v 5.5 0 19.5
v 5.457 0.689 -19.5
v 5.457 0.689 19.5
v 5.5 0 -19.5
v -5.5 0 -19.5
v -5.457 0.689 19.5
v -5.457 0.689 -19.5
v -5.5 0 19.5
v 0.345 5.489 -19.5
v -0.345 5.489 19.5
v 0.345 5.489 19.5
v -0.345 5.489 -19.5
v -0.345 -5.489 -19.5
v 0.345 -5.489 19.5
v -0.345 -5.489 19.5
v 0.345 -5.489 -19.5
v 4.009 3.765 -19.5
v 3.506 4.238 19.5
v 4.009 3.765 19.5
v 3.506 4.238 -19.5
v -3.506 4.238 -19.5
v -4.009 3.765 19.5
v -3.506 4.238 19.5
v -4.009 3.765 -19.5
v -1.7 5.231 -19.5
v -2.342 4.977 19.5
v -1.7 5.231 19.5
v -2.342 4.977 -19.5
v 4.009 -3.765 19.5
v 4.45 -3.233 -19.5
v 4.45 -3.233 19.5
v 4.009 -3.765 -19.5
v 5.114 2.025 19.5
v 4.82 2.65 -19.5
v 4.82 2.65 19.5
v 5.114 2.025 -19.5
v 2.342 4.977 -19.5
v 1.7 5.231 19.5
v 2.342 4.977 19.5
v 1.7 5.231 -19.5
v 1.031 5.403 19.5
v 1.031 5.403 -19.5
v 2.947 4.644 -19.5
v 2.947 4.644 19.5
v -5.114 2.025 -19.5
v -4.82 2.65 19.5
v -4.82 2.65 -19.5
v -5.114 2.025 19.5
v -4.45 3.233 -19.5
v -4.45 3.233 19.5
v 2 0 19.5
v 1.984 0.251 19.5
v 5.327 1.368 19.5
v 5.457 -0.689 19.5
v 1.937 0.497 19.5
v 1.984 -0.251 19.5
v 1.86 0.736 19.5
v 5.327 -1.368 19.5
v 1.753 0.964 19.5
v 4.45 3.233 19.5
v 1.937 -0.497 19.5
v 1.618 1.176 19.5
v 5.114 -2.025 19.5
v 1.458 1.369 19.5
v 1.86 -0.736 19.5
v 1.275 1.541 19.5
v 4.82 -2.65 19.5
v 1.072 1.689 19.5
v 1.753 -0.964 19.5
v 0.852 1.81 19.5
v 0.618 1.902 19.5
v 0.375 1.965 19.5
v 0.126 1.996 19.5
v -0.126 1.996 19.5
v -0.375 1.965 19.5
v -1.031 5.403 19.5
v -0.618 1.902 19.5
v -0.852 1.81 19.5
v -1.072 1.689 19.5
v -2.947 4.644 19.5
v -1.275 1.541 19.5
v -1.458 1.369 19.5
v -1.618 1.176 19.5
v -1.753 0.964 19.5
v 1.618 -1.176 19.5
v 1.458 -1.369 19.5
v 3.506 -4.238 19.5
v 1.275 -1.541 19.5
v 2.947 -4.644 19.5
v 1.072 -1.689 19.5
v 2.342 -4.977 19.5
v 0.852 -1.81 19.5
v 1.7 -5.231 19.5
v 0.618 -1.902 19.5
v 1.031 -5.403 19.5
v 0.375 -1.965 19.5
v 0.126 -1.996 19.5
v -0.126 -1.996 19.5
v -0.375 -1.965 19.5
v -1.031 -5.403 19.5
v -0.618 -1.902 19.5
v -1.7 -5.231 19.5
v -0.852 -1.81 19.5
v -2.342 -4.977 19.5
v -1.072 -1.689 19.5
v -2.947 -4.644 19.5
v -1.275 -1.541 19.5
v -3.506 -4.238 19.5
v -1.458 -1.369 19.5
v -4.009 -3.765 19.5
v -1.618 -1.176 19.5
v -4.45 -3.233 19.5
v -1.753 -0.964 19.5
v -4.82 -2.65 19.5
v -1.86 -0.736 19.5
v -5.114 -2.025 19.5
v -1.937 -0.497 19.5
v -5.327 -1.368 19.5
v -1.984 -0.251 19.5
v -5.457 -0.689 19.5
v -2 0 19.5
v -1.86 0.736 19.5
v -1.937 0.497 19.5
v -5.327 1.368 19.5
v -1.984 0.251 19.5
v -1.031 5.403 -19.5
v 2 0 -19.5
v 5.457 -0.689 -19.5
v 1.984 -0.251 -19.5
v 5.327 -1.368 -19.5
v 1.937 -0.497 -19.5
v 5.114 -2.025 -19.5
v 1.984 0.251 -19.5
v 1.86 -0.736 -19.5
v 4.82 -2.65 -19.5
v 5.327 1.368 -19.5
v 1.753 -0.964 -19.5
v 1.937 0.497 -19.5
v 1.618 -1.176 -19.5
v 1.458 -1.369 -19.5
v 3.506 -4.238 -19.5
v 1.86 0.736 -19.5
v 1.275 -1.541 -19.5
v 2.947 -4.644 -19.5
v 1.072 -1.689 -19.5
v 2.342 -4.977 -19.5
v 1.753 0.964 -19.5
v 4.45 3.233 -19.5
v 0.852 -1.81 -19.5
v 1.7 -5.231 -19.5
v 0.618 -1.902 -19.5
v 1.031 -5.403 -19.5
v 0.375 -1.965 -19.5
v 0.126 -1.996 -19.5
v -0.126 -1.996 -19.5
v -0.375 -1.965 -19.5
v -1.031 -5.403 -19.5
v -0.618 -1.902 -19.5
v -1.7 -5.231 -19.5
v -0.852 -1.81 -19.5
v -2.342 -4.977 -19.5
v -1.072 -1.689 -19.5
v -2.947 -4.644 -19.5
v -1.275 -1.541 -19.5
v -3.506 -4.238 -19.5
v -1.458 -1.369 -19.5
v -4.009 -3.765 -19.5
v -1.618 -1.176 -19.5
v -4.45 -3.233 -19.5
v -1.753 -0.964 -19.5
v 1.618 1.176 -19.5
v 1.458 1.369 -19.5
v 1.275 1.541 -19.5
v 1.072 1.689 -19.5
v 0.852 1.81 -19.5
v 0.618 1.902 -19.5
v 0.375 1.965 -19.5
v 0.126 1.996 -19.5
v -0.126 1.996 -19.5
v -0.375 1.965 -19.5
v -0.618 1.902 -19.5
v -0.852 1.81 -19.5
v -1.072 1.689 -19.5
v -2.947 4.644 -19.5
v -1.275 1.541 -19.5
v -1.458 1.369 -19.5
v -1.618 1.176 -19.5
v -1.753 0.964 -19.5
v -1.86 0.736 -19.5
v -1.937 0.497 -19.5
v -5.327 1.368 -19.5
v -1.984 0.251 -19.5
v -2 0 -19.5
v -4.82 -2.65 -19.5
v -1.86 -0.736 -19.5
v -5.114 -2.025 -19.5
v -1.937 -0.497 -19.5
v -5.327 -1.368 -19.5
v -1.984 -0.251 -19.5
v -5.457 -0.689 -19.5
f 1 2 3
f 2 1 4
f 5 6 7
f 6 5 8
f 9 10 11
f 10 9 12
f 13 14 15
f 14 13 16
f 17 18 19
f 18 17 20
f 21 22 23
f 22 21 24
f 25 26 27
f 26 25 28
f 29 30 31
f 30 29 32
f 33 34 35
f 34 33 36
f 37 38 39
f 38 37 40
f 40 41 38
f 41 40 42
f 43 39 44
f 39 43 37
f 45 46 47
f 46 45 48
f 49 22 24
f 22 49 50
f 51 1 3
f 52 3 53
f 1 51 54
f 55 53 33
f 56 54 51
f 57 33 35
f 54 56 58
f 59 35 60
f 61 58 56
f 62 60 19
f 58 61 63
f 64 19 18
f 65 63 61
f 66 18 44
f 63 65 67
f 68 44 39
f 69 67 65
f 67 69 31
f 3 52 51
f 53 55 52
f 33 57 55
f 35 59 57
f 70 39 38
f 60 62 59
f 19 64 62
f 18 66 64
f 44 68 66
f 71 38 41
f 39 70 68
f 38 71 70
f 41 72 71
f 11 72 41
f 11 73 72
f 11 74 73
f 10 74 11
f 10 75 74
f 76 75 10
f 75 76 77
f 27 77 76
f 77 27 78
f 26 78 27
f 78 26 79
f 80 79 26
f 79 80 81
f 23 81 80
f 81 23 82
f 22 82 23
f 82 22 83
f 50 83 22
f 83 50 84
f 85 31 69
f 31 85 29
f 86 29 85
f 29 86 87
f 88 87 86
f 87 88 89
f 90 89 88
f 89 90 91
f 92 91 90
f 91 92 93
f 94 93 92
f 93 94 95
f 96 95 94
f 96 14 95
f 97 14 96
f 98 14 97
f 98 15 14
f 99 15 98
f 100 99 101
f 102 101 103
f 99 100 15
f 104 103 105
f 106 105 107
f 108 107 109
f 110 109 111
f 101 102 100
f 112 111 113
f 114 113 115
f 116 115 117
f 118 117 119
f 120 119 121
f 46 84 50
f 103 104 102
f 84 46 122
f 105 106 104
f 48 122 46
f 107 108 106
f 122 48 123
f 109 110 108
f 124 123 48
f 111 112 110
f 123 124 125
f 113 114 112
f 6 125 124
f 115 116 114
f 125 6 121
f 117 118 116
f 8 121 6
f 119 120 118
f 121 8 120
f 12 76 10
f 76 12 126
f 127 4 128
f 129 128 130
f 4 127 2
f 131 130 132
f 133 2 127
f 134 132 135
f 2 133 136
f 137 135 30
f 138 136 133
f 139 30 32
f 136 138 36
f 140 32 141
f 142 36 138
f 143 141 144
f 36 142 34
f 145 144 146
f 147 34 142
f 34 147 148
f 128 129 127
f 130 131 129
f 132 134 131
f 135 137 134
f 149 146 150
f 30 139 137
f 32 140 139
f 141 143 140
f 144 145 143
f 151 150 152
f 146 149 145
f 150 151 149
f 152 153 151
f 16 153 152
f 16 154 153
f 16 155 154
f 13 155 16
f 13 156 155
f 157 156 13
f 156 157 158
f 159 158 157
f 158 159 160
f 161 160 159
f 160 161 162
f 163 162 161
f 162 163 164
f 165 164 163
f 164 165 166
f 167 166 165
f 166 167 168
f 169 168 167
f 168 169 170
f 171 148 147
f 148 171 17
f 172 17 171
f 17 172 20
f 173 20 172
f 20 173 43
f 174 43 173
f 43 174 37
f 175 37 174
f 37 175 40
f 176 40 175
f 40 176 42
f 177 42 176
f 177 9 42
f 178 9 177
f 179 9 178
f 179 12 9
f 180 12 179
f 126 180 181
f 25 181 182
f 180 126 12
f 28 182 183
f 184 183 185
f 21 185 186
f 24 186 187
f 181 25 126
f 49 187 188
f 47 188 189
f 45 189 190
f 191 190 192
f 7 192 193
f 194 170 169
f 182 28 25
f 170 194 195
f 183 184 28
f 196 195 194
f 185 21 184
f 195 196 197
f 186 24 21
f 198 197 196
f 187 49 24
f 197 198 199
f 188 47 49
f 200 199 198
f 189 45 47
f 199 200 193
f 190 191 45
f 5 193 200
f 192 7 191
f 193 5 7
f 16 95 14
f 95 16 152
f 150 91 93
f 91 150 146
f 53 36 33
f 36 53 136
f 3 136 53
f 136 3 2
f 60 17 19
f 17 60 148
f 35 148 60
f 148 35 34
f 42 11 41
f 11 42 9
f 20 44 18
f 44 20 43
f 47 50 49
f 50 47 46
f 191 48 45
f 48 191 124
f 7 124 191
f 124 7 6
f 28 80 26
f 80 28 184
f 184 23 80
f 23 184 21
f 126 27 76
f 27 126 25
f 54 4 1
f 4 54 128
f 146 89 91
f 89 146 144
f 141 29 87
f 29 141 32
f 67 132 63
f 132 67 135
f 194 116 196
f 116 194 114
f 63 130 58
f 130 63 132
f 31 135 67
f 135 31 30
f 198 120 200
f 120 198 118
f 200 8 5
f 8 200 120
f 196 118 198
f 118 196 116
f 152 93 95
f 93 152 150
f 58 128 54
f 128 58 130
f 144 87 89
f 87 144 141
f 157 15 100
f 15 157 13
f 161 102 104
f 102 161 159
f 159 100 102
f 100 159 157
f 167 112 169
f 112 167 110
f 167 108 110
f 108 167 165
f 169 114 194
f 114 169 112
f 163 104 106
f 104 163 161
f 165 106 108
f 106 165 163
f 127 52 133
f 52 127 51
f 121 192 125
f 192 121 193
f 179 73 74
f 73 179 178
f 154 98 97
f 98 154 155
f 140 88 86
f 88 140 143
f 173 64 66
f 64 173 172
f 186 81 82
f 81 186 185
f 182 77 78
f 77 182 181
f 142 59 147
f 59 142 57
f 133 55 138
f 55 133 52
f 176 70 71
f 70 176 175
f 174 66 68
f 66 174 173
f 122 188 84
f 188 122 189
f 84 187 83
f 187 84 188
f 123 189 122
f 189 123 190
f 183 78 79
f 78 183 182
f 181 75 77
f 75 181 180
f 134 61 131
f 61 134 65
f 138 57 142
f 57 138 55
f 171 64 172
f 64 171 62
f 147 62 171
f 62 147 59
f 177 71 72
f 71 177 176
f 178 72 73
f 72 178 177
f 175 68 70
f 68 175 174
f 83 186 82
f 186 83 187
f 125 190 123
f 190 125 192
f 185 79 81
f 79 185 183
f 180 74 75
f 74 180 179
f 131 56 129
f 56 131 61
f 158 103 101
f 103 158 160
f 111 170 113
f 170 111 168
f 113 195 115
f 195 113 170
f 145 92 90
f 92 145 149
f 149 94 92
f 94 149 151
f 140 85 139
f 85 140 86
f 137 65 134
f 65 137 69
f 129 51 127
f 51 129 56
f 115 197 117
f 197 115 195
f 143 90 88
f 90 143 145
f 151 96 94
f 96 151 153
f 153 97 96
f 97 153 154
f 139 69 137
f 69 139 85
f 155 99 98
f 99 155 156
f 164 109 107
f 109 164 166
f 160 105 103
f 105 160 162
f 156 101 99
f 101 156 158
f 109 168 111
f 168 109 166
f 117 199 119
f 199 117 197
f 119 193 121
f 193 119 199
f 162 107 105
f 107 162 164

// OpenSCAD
$fn = 50;


difference() {
	union() {
		translate(v = [0, 0, -19.5000000000]) {
			cylinder(h = 39, r = 5.5000000000);
		}
	}
	union() {
		translate(v = [0, 0, -100.0000000000]) {
			cylinder(h = 200, r = 2);
		}
	}
}
